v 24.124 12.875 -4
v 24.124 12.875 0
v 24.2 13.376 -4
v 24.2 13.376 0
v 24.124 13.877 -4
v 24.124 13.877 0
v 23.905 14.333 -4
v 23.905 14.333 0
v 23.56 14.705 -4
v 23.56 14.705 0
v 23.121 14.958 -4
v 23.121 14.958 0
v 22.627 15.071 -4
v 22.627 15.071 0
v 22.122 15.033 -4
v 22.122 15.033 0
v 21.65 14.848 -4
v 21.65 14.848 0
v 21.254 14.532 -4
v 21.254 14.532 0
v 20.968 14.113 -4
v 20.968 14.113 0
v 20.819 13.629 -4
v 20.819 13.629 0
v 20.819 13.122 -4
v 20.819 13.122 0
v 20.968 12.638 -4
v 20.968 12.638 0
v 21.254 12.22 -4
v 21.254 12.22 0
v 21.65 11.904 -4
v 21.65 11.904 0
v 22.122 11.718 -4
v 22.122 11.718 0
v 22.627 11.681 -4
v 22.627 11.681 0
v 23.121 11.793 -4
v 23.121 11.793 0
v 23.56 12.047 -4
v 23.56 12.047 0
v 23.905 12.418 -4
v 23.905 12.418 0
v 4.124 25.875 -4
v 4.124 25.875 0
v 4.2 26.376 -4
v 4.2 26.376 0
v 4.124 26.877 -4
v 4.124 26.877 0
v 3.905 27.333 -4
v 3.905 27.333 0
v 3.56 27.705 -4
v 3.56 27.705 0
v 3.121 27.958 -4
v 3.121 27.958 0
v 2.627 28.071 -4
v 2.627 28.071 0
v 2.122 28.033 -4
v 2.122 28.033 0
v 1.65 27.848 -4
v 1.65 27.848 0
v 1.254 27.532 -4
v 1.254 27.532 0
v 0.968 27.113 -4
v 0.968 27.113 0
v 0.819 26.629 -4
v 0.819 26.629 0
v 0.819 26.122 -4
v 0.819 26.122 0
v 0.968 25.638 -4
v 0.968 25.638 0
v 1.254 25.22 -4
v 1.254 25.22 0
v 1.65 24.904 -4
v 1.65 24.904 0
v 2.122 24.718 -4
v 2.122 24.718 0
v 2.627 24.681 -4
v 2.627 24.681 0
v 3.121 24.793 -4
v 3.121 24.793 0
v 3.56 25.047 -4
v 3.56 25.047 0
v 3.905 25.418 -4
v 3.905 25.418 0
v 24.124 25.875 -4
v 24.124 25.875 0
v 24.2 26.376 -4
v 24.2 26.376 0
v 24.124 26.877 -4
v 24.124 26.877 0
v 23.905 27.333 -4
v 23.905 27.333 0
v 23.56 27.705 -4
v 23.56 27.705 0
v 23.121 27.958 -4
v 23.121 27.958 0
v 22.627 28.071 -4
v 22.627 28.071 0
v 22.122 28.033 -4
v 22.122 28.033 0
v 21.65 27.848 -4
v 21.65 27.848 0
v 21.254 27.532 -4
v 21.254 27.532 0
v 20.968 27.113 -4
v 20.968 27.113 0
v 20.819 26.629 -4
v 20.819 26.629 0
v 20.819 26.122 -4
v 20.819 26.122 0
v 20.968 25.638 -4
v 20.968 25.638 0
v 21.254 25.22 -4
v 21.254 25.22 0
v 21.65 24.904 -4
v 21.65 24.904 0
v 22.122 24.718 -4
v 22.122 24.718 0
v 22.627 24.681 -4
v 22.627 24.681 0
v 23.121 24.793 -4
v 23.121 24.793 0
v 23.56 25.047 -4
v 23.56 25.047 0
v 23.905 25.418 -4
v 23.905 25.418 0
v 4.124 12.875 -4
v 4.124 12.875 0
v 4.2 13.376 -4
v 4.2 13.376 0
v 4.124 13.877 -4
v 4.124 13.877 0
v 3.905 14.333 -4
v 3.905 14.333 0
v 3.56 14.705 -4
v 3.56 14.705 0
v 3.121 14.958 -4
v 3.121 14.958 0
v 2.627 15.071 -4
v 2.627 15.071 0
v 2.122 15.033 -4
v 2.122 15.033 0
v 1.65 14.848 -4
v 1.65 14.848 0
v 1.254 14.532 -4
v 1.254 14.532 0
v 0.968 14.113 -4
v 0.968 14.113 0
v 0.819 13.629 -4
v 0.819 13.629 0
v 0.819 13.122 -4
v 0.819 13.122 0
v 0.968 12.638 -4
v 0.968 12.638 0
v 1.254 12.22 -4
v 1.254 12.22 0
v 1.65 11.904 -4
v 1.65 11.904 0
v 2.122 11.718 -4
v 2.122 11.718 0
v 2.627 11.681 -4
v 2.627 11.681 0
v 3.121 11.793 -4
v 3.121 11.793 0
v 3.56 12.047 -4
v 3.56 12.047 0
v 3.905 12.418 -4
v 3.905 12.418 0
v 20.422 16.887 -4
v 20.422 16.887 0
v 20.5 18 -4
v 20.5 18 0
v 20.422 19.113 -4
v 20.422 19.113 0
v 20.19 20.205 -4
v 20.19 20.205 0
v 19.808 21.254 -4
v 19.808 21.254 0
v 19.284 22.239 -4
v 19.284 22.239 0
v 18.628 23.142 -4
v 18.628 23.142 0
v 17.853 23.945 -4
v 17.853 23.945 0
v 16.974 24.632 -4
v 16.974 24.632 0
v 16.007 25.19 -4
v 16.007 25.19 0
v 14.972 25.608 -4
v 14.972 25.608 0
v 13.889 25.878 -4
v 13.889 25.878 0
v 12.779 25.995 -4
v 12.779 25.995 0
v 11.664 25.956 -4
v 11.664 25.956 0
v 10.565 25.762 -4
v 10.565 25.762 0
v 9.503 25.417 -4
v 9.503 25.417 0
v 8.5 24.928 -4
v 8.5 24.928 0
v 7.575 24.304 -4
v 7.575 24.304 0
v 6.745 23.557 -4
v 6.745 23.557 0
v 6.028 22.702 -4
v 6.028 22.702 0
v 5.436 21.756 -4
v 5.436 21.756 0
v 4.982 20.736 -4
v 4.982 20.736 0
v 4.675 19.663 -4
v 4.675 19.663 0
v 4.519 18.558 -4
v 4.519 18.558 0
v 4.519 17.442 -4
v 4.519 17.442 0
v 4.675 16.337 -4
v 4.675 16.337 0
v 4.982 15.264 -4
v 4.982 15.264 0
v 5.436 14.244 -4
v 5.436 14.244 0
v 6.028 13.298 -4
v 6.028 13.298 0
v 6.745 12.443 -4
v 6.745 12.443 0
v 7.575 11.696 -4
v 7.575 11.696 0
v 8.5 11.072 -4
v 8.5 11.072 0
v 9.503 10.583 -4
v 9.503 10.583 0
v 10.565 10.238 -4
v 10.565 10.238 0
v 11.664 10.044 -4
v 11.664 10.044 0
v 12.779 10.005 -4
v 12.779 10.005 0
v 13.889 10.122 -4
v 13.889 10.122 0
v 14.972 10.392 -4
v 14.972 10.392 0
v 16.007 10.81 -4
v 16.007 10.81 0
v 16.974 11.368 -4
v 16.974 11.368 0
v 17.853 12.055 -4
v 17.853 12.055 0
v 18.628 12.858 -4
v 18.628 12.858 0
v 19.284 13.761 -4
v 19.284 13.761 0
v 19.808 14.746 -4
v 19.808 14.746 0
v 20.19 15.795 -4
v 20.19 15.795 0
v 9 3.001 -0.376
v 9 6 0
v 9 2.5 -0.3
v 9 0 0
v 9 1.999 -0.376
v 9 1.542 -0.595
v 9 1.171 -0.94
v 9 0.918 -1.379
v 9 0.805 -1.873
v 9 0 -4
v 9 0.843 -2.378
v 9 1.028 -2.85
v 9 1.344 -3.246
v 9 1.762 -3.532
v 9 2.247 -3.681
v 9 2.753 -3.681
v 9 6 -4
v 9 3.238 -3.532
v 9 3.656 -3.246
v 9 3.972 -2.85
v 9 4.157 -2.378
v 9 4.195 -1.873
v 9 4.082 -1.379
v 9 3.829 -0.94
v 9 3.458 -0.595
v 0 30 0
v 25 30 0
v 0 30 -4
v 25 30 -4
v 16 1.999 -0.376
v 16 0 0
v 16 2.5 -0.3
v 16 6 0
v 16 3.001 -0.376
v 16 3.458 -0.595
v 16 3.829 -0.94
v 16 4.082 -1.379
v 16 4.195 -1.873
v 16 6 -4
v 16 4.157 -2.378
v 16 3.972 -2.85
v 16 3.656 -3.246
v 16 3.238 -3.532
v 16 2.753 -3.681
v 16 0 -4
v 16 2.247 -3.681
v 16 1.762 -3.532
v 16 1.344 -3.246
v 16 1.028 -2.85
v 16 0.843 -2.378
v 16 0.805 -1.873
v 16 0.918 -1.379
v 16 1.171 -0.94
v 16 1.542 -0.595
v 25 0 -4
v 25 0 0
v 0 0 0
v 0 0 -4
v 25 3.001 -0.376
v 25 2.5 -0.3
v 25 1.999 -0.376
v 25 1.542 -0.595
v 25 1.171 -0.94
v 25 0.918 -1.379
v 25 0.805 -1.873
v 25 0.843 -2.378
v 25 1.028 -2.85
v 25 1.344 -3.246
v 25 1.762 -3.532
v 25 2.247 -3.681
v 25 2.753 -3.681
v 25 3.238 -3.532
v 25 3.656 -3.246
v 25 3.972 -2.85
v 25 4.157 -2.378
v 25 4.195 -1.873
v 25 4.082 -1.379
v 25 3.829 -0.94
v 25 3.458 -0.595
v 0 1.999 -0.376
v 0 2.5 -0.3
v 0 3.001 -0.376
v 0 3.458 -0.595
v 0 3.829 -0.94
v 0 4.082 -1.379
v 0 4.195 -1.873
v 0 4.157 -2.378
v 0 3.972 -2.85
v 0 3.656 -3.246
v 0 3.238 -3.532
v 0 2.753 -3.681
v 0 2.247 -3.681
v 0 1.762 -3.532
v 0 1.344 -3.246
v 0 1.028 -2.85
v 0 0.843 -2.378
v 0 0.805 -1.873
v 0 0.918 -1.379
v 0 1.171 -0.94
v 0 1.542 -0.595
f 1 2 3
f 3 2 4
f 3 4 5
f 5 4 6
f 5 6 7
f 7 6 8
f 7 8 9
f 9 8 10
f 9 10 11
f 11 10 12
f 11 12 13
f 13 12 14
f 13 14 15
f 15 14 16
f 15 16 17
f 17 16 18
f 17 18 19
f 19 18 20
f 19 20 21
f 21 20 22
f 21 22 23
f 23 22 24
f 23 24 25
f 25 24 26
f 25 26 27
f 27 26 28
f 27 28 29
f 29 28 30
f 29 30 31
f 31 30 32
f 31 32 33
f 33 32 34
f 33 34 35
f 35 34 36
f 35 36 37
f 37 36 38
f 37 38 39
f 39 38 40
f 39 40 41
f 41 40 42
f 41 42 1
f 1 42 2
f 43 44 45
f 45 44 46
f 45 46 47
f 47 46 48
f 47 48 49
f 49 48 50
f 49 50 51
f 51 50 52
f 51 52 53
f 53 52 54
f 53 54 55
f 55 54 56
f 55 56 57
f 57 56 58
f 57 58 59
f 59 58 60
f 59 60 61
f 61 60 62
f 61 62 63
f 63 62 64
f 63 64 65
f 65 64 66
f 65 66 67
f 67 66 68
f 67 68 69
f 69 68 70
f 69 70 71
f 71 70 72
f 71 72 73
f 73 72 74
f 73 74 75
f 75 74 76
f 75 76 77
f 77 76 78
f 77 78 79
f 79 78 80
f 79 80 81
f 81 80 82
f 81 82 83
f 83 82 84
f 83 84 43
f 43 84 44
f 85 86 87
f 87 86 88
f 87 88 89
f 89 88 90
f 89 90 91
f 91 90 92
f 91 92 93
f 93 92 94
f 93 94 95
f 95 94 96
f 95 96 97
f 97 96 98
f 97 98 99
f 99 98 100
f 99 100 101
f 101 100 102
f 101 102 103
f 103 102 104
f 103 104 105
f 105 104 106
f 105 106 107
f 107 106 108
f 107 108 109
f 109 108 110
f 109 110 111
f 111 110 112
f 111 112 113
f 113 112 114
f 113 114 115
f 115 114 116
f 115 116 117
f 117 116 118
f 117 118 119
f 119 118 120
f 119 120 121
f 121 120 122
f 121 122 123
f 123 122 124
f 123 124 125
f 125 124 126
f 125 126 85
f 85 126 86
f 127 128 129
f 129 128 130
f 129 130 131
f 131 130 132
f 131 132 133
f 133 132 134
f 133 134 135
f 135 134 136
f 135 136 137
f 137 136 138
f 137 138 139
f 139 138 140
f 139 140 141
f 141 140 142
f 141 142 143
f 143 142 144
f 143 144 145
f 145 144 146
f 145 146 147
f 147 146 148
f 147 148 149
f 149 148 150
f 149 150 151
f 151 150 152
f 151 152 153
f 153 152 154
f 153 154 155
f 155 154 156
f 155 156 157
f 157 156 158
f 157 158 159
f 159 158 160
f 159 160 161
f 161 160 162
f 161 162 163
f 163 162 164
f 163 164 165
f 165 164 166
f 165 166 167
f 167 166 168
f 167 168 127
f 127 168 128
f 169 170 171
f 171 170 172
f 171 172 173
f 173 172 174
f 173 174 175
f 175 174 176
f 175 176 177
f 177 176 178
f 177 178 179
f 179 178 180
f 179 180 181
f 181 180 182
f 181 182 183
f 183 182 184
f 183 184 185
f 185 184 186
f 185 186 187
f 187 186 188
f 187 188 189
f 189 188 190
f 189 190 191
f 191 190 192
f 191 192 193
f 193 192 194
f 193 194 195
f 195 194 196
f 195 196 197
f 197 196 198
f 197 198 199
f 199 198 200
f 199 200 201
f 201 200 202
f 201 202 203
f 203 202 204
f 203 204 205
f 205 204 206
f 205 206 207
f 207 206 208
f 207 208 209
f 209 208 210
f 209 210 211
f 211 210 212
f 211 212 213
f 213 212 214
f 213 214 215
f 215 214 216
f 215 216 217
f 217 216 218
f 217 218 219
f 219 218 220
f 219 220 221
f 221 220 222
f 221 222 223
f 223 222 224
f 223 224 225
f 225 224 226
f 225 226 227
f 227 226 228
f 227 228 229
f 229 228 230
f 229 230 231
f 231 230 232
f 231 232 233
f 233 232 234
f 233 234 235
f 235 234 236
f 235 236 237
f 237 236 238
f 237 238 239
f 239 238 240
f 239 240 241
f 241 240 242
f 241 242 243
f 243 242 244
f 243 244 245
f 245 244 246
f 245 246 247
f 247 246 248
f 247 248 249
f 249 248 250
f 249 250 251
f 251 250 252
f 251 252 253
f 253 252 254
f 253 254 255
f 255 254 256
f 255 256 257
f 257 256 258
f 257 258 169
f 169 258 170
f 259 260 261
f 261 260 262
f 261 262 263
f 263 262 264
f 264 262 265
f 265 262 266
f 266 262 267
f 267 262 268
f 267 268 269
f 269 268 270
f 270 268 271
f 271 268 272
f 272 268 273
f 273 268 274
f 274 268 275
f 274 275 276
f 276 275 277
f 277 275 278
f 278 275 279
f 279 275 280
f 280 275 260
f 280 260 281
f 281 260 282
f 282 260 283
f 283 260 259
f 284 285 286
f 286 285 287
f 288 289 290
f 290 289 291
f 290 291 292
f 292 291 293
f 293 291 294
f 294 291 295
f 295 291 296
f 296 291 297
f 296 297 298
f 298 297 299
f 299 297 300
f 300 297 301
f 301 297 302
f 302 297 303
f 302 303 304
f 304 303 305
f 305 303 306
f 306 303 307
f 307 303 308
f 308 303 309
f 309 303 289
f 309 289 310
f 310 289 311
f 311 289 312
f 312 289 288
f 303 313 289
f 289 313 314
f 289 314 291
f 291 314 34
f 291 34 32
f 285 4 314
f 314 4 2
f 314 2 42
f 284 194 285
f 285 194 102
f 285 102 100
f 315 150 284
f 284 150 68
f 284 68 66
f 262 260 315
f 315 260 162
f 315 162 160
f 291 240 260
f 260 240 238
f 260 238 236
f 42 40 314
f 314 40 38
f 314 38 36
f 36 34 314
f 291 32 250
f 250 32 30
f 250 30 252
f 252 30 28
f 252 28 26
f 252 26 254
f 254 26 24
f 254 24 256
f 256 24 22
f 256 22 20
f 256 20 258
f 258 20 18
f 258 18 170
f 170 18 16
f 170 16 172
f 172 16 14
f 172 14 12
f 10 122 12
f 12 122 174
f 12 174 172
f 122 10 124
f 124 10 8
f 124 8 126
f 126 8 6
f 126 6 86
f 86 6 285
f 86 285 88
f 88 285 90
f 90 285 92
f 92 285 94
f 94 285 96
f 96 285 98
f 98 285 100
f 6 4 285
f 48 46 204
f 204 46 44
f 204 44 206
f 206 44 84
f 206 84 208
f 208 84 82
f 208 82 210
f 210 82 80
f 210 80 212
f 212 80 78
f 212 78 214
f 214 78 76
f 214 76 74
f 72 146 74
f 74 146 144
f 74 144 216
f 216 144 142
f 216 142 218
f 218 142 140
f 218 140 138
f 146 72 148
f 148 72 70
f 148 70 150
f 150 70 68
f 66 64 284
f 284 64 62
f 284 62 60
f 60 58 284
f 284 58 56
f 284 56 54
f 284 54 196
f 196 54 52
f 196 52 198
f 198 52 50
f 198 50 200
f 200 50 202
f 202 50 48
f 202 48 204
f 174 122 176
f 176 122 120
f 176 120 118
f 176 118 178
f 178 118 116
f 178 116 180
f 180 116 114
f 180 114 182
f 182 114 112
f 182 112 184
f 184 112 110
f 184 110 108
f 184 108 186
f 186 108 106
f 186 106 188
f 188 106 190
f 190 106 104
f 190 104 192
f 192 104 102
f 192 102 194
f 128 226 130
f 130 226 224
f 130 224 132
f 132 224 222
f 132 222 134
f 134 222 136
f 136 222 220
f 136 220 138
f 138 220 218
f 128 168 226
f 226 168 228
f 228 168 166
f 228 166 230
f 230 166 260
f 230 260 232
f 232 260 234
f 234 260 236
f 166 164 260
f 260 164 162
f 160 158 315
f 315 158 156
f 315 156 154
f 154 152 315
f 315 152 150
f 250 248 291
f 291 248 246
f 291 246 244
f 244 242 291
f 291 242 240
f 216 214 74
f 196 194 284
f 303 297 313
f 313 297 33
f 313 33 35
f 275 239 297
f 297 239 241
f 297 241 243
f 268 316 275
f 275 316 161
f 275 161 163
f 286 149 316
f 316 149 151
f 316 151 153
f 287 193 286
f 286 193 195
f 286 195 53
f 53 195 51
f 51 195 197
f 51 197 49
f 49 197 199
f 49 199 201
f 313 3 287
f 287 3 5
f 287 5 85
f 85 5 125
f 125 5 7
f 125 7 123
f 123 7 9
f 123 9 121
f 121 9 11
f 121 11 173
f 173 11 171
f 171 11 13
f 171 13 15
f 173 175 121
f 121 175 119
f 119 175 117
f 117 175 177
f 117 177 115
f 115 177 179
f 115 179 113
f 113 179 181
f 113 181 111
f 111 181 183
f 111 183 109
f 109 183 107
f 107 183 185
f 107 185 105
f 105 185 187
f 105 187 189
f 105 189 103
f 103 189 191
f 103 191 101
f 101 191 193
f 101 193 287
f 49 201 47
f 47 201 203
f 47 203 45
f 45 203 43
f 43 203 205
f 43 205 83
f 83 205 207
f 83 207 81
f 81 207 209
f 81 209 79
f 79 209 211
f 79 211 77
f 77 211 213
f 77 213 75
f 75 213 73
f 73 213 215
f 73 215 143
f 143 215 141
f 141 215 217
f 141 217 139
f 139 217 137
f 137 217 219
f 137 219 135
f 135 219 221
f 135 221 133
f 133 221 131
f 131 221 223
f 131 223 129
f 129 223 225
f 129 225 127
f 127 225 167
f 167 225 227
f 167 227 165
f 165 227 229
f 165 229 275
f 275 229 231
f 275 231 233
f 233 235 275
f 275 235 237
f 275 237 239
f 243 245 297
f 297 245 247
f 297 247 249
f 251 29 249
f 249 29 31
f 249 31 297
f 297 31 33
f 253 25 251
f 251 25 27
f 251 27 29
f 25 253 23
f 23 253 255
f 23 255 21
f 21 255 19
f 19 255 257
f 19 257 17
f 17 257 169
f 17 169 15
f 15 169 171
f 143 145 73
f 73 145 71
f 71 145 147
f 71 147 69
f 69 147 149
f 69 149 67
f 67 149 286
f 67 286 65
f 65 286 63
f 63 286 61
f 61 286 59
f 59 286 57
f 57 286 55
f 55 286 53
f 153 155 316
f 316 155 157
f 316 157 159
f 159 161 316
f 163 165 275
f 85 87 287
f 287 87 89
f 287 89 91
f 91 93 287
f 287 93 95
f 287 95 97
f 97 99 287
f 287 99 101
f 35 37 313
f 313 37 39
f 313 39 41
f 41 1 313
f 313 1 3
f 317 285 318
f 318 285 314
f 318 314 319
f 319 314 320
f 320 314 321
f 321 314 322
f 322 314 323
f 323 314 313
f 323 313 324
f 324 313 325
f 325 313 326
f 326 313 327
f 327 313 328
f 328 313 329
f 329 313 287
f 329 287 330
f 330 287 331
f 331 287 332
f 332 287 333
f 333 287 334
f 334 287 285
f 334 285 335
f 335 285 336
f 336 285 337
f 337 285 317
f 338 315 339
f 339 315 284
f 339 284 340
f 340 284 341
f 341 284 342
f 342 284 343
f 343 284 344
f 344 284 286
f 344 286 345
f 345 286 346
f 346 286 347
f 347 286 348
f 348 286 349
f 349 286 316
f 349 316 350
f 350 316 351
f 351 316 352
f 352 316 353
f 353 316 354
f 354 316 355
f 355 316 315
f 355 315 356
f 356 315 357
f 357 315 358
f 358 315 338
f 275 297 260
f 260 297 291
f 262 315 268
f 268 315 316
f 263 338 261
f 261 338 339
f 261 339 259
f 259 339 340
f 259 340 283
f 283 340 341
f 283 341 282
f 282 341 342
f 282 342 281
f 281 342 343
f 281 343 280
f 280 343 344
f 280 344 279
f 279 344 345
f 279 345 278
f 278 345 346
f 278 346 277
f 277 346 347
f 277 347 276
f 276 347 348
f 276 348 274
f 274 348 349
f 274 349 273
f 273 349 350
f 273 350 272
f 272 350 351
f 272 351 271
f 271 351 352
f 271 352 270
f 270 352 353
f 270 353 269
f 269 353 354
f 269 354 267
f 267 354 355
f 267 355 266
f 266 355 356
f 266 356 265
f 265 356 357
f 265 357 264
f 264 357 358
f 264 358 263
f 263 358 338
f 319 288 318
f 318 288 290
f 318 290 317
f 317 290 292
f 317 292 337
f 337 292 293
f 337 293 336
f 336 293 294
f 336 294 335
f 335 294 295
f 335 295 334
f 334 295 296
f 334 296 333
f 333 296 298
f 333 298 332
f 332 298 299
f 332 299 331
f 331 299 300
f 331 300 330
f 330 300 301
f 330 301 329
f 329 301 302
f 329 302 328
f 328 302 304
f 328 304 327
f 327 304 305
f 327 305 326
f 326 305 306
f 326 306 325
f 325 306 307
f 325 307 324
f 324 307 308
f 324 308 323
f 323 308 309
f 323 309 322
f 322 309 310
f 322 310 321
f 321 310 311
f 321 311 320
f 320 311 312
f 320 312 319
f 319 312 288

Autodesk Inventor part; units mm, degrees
ref_plane "YZ Plane" through (0, 0, 0) normal (1, 0, 0) x (0, 1, 0)
ref_plane "XZ Plane" through (0, 0, 0) normal (0, 1, 0) x (-1, 0, 0)
ref_plane "XY Plane" through (0, 0, 0) normal (0, 0, 1) x (1, 0, 0)
sketch "Skizze1" plane through (0, 0, 0) normal (0, 0, 1) x (1, 0, 0)
  line L0 (0, 0) -> (25, 0)
  line L1 (25, 0) -> (25, 30)
  line L2 (25, 30) -> (0, 30)
  line L3 (0, 30) -> (0, 0)
  dimension "d0" = 30
  dimension "d1" = 25
extrude "Extrusion1" add sketch "Skizze1" against normal blind 4
sketch "Skizze2" plane through (0, 0, 0) normal (0, 0, 1) x (1, 0, 0)
  circle A0 centre (12.5, 18) radius 8
  line L0 (25, 0) -> (25, 30) projected
  line L1 (0, 0) -> (25, 0) projected
  dimension "d4" = 16
  dimension "d5" = 12.5
  dimension "d6" = 18
extrude "Extrusion2" cut sketch "Skizze2" against normal blind 10
sketch "Skizze4" plane through (0, 0, 0) normal (0, 0, 1) x (1, 0, 0)
  line L0 (2.5, 13.3758) -> (22.5, 13.3758) construction
  line L1 (22.5, 13.3758) -> (22.5, 26.3758) construction
  line L2 (22.5, 26.3758) -> (2.5, 26.3758) construction
  line L3 (2.5, 26.3758) -> (2.5, 13.3758) construction
  line L4 (25, 0) -> (25, 30) construction
  circle A0 centre (2.5, 26.3758) radius 1.7
  circle A1 centre (22.5, 26.3758) radius 1.7
  circle A2 centre (22.5, 13.3758) radius 1.7
  circle A3 centre (2.5, 13.3758) radius 1.7
  point P0 (0, 0)
  point P1 (25, 3.0001)
  dimension "d12" = 20
  dimension "d13" = 13
  dimension "d14" = 2.5
  dimension "d15" = 3.4
  dimension "d16" = 3.4
  dimension "d17" = 3.4
  dimension "d18" = 3.4
extrude "Extrusion4" cut sketch "Skizze4" against normal blind 10
sketch "Skizze6" plane through (0, 0, 0) normal (0, 0, 1) x (1, 0, 0)
  line L0 (25, 0) -> (0, 0) projected
  line L1 (25, 0) -> (16, 0)
  line L2 (16, 0) -> (16, 6)
  line L3 (16, 6) -> (25, 6)
  line L4 (25, 6) -> (25, 0)
  line L5 (0, 0) -> (9, 0)
  line L6 (9, 0) -> (9, 6)
  line L7 (9, 6) -> (0, 6)
  line L8 (0, 6) -> (0, 0)
  line L9 (9, 6) -> (16, 6)
  line L10 (16, 6) -> (16, 0)
  line L11 (16, 0) -> (9, 0)
  line L12 (9, 0) -> (9, 6)
  dimension "d21" = 9
  dimension "d22" = 9
  dimension "d23" = 6
extrude "Extrusion5" cut sketch "Skizze6" against normal blind 10 contours L0 L6 L9 L2
sketch "Skizze7" plane through (0, 0, 0) normal (-1, 0, 0) x (0, 0, 1)
  circle A0 centre (-2, 2.5) radius 1.7
  line L0 (0, 30) -> (0, 0) projected
  line L1 (0, 0) -> (-4, 0) projected
  dimension "d26" = 3.4
  dimension "d27" = 2
  dimension "d28" = 2.5
extrude "Extrusion6" cut sketch "Skizze7" against normal blind 40
properties part number "kamera ot"
